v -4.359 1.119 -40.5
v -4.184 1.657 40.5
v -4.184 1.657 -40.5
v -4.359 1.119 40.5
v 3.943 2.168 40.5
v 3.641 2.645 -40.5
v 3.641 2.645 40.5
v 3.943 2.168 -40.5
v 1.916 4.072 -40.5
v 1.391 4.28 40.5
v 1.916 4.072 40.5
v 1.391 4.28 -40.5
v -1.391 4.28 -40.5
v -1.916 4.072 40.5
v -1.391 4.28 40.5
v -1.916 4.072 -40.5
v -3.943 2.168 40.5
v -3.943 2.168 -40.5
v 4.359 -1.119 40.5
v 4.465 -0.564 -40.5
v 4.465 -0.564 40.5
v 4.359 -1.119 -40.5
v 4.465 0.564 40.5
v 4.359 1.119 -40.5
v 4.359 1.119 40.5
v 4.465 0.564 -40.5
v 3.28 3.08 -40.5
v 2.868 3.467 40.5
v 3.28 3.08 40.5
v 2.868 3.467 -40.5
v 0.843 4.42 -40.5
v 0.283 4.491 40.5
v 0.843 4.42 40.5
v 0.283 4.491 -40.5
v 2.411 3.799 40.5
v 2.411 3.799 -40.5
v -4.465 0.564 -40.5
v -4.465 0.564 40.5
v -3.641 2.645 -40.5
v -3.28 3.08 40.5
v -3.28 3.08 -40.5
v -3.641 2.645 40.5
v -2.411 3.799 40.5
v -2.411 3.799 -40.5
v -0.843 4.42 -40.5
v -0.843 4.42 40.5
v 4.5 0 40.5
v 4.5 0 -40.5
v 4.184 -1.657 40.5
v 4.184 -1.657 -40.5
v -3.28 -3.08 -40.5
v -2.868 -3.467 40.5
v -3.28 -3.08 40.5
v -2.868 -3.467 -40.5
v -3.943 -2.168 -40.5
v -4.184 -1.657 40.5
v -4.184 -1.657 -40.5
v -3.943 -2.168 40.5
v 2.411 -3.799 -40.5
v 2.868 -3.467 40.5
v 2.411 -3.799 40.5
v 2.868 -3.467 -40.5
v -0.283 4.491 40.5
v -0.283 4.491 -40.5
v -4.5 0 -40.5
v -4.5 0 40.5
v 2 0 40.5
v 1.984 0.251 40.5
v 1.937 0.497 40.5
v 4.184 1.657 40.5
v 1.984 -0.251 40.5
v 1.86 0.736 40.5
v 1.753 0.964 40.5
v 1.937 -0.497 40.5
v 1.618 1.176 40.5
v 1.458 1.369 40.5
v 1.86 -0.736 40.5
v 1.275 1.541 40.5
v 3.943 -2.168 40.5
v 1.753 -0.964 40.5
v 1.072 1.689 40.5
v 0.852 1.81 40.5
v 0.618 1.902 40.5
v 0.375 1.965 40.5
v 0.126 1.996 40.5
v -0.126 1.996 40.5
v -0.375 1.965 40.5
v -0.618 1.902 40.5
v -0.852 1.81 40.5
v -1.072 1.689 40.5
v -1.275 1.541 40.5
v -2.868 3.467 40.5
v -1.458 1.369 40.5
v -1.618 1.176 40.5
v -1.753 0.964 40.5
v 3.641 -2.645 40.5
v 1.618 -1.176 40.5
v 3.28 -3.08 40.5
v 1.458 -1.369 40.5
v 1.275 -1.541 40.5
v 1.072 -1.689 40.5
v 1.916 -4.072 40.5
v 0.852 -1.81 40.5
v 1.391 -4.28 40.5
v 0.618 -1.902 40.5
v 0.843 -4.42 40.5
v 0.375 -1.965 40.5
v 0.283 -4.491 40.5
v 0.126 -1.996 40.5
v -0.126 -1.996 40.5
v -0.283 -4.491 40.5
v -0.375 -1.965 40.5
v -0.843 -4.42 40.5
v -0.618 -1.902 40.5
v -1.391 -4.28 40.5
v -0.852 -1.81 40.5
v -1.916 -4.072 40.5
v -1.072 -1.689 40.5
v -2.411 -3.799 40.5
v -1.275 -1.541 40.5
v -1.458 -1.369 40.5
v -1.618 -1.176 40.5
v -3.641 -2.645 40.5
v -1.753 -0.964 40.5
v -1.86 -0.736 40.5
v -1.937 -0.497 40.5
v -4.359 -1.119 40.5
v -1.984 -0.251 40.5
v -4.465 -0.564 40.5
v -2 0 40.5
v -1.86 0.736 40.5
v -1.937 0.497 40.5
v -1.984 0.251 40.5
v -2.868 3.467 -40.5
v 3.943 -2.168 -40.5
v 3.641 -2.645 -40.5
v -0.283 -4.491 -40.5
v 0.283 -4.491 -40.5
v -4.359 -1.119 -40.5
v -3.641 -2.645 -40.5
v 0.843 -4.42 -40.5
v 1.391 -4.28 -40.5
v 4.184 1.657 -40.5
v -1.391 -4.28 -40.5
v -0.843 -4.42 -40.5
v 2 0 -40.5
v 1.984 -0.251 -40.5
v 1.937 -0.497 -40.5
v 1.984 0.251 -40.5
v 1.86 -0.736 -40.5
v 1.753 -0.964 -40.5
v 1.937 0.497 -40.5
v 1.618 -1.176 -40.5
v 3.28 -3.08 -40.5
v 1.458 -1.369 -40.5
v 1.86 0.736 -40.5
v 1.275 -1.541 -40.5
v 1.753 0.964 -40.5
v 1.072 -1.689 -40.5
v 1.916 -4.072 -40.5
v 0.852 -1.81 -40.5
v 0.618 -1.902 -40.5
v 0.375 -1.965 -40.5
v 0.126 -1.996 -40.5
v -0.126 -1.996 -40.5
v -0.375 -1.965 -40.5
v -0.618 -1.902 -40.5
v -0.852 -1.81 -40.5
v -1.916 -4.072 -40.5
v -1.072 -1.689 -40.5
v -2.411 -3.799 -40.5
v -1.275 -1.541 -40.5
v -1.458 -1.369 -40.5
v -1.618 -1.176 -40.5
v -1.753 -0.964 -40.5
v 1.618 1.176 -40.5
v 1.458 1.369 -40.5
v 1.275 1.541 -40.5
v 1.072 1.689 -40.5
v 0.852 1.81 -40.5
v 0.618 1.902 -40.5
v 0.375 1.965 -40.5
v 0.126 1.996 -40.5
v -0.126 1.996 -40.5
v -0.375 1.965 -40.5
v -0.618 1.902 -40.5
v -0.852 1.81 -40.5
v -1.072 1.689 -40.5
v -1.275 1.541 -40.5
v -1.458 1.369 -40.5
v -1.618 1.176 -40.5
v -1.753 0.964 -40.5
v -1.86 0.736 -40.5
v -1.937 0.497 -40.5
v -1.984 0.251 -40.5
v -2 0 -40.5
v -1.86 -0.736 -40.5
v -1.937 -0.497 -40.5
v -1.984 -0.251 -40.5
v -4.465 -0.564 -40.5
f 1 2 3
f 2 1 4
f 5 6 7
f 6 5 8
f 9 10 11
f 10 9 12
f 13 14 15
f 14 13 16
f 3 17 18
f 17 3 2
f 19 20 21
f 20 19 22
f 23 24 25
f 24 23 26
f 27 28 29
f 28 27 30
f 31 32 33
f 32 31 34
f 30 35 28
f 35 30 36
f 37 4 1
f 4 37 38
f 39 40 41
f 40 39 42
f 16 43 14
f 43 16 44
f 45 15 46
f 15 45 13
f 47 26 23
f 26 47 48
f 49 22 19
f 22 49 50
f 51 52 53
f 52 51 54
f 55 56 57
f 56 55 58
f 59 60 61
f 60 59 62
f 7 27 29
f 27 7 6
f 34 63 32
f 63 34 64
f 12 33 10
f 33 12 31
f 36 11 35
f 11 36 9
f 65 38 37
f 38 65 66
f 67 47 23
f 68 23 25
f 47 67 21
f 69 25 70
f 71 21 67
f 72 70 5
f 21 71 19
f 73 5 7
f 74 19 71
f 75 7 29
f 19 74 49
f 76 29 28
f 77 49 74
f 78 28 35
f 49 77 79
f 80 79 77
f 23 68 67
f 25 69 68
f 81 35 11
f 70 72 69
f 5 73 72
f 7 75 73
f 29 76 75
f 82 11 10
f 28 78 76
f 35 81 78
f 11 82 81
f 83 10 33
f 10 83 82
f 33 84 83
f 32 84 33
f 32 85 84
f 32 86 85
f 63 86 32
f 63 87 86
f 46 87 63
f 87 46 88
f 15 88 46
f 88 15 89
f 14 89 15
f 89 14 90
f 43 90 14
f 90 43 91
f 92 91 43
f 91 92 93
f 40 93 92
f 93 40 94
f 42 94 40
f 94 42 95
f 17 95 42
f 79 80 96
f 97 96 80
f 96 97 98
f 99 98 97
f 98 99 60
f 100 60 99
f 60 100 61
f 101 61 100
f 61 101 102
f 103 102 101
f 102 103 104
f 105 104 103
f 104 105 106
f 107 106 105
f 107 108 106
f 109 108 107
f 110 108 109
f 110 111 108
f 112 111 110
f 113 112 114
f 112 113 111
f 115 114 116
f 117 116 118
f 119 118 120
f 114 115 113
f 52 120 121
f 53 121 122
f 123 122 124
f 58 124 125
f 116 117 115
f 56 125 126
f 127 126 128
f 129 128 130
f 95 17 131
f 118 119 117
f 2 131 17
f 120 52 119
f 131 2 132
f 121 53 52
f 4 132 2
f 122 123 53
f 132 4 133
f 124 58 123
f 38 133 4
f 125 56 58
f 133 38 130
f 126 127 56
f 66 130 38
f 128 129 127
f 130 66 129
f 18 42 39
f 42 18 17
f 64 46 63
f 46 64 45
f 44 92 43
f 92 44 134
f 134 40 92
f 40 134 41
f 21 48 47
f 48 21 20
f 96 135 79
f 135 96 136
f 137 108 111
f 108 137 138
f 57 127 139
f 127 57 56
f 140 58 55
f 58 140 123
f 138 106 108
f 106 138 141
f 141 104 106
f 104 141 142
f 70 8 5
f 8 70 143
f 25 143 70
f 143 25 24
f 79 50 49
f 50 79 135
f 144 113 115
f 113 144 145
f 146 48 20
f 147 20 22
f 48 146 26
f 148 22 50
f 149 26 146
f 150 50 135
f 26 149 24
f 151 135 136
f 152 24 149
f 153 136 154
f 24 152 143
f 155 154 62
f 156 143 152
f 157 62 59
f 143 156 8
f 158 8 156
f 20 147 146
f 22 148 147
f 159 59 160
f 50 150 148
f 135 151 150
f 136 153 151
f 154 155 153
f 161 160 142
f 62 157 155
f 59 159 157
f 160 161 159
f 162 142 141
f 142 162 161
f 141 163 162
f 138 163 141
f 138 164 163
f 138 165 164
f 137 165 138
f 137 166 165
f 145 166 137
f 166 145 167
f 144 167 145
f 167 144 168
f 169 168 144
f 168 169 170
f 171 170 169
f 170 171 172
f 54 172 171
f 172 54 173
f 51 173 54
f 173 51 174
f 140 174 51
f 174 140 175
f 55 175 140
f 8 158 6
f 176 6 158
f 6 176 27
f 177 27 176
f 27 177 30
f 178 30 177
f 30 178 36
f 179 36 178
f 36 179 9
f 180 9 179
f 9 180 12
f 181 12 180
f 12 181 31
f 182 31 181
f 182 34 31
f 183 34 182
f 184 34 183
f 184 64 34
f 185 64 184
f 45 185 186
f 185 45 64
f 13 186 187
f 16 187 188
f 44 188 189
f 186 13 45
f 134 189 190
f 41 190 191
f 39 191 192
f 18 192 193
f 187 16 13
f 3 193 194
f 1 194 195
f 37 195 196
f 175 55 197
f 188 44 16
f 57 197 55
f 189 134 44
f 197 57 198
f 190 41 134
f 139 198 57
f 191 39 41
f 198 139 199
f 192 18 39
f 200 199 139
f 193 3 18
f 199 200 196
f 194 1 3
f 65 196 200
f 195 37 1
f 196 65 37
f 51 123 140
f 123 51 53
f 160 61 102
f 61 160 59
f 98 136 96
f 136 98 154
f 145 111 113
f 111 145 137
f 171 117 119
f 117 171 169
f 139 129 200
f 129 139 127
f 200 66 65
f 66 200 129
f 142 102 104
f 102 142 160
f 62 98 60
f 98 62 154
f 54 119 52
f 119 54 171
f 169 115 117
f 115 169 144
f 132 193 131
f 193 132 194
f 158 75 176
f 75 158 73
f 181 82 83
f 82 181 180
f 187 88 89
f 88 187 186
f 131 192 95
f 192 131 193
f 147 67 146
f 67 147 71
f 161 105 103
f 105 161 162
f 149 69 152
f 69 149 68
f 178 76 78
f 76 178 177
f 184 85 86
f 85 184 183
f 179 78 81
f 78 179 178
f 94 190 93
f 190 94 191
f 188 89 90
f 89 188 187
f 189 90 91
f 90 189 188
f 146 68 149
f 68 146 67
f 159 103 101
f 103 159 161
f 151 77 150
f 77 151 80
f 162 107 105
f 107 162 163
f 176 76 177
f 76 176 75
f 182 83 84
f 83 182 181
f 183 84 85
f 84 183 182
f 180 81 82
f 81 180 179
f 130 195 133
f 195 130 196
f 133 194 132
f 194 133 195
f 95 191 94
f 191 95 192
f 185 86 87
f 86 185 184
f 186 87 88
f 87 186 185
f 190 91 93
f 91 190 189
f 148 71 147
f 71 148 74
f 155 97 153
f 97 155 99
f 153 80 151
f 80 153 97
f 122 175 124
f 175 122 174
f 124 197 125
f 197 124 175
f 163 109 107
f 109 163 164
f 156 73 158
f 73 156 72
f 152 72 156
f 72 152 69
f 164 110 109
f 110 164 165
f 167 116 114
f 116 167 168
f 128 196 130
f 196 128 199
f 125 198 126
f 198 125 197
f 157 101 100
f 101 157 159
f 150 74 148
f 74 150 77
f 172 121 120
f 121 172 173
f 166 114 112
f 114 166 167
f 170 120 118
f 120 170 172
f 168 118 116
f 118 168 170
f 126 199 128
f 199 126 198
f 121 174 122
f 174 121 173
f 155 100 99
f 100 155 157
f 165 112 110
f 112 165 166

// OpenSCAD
$fn = 50;


difference() {
	union() {
		translate(v = [0, 0, -40.5000000000]) {
			cylinder(h = 81, r = 4.5000000000);
		}
	}
	union() {
		translate(v = [0, 0, -100.0000000000]) {
			cylinder(h = 200, r = 2);
		}
	}
}
